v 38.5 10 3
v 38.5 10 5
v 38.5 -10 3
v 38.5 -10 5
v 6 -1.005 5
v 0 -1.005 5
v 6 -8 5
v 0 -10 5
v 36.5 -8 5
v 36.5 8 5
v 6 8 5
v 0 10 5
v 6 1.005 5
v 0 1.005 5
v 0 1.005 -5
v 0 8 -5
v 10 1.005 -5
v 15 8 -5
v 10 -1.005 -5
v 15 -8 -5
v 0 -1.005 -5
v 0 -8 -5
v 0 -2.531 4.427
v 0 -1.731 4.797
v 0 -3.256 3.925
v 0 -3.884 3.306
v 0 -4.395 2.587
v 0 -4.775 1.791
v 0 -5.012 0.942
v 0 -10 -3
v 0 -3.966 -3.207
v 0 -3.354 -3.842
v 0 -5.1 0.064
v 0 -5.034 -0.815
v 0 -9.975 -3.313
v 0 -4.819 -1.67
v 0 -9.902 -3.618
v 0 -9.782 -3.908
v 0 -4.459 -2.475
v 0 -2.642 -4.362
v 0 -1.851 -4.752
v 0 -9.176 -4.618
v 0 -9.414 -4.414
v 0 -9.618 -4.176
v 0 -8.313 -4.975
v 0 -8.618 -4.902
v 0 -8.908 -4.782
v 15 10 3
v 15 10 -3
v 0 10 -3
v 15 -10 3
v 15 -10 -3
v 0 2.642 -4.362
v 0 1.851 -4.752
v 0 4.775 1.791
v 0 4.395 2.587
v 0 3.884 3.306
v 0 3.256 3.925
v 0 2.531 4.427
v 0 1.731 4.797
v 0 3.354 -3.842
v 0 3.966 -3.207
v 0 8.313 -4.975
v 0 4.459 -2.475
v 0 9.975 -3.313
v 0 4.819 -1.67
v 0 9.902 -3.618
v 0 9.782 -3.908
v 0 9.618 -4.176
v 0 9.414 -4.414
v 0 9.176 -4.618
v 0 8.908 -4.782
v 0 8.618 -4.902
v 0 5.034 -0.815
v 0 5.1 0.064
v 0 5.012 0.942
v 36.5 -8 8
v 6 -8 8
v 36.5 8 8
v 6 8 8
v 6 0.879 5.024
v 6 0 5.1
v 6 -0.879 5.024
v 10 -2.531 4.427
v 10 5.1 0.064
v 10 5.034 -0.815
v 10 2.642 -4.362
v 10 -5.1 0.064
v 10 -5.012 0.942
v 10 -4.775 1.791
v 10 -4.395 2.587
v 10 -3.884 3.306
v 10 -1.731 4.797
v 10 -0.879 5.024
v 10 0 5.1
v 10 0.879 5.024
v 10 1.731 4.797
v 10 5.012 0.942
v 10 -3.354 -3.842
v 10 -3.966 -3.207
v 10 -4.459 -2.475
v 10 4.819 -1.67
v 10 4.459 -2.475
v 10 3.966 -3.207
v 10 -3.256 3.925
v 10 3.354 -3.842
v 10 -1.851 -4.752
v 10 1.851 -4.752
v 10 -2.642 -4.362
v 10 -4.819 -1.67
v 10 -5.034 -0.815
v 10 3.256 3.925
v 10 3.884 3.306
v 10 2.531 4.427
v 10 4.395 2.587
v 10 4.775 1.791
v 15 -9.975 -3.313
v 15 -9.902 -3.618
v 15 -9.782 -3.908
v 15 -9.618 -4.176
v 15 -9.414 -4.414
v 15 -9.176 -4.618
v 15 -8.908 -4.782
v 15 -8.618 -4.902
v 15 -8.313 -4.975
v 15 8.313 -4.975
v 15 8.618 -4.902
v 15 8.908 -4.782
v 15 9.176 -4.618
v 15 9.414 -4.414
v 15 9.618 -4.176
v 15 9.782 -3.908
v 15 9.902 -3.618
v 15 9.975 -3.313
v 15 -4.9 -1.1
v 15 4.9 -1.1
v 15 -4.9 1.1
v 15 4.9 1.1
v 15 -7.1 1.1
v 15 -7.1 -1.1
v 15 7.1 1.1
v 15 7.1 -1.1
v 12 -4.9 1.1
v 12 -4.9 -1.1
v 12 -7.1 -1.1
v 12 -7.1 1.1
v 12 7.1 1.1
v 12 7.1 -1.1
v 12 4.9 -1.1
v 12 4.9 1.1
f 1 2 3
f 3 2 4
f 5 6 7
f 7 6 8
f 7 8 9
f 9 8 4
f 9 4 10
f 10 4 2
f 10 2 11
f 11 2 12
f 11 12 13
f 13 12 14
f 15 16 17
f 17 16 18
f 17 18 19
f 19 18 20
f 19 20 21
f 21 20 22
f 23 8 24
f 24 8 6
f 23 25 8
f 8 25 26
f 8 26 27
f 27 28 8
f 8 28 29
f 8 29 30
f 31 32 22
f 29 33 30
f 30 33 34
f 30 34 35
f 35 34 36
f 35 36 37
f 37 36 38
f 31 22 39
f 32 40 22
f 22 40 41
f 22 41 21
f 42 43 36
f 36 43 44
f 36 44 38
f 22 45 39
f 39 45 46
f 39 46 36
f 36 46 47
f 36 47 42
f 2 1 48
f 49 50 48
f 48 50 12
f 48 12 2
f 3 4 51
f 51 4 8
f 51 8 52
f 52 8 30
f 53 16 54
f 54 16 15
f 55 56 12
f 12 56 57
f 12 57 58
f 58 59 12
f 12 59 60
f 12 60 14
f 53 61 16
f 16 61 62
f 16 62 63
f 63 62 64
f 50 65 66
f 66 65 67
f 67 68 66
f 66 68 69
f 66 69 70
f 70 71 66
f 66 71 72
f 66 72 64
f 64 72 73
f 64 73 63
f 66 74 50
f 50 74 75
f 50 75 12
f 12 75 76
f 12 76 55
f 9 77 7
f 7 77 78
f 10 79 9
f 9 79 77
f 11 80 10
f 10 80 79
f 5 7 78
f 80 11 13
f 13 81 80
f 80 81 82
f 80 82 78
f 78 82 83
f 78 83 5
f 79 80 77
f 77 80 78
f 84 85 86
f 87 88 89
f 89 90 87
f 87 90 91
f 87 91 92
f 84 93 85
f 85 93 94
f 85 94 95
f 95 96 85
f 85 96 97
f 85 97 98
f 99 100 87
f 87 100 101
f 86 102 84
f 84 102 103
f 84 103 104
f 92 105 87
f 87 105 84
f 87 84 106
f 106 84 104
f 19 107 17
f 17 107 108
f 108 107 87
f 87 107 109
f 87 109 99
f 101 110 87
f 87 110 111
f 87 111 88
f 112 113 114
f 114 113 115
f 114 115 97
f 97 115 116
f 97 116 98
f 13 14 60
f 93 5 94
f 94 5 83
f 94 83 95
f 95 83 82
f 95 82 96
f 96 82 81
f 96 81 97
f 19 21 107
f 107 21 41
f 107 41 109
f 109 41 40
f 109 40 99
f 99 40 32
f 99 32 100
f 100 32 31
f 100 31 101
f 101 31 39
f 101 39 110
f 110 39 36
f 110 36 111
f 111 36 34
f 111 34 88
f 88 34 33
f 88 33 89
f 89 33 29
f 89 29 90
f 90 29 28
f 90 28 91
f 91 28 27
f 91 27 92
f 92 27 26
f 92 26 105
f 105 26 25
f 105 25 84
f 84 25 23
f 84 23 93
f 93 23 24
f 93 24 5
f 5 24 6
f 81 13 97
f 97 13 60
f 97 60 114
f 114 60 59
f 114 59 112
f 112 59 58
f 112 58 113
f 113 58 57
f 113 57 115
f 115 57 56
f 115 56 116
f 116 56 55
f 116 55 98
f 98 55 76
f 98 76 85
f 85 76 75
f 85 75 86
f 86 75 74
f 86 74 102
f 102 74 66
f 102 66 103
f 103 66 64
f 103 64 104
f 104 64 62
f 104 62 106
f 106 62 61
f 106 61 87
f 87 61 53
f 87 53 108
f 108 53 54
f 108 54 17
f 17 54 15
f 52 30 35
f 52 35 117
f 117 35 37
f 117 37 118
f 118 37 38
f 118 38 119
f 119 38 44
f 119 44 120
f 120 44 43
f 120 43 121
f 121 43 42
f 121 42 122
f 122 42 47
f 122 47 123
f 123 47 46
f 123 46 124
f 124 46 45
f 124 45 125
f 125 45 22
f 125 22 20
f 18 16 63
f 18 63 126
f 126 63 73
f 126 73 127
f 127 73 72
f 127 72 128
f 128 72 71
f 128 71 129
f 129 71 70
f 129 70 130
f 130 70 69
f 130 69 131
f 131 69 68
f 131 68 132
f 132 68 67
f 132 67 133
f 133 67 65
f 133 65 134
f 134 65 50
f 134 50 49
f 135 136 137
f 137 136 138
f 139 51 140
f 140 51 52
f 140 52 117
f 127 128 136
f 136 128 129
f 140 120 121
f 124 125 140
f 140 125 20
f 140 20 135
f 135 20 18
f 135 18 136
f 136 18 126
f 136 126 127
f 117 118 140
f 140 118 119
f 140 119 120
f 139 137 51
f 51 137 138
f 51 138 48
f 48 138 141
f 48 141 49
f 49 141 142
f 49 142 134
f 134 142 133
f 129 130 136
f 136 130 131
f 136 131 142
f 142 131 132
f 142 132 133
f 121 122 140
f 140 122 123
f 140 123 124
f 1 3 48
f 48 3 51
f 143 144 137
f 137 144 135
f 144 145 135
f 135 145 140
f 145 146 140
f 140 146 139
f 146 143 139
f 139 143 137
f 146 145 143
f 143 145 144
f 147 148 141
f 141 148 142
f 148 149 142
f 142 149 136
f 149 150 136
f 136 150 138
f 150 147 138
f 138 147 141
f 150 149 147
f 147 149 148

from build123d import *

# Parameters (mm, degrees)
SKETCH1_W           = 20
SKETCH1_H           = 10
BOSS_EXTRUDE1_DEPTH = 38.5
SKETCH5_W           = 16
SKETCH5_H           = 30.5
BOSS_EXTRUDE2_DEPTH = 8
SKETCH2_R           = 5.1
CUT_EXTRUDE3_DEPTH  = 10
FILLET1_R           = 2
SKETCH6_W           = 23.5
SKETCH6_H           = 20
CUT_EXTRUDE4_DEPTH  = 8
SKETCH7_W           = 2.2
SKETCH7_H           = 2.2
CUT_EXTRUDE5_DEPTH  = 3


with BuildPart() as part:
    # Sketch1 → Boss-Extrude1 (new body)
    with BuildSketch(Plane.YZ):
        Rectangle(SKETCH1_W, SKETCH1_H)
    extrude(amount=BOSS_EXTRUDE1_DEPTH)

    # Sketch5 → Boss-Extrude2 (add)
    with BuildSketch(Plane(origin=(0, 0, 0), x_dir=(0, 1, 0), z_dir=(0, 0, 1))):
        with Locations((0, -21.25)):
            Rectangle(SKETCH5_W, SKETCH5_H)
    extrude(amount=BOSS_EXTRUDE2_DEPTH)

    # Sketch2 → Cut-Extrude3 (cut)
    with BuildSketch(Plane.YZ):
        Circle(SKETCH2_R)
    extrude(amount=CUT_EXTRUDE3_DEPTH, mode=Mode.SUBTRACT)

    # Fillet1
    fillet1_edges = [part.edges().sort_by_distance(p)[0] for p in [
        (19.25, 10, -5),
        (19.25, -10, -5),
    ]]
    fillet(fillet1_edges, radius=FILLET1_R)

    # Sketch6 → Cut-Extrude4 (cut)
    with BuildSketch(Plane(origin=(0, 0, -5), x_dir=(1, 0, 0), z_dir=(0, 0, -1))):
        with Locations((26.75, 0)):
            Rectangle(SKETCH6_W, SKETCH6_H)
    extrude(amount=-CUT_EXTRUDE4_DEPTH, mode=Mode.SUBTRACT)

    # Sketch7 → Cut-Extrude5 (cut)
    with BuildSketch(Plane.YZ.offset(15)):
        with Locations((6, 0)):
            Rectangle(SKETCH7_W, SKETCH7_H)
        with Locations((-6, 0)):
            Rectangle(SKETCH7_W, SKETCH7_H)
    extrude(amount=-CUT_EXTRUDE5_DEPTH, mode=Mode.SUBTRACT)


solid = part.part
